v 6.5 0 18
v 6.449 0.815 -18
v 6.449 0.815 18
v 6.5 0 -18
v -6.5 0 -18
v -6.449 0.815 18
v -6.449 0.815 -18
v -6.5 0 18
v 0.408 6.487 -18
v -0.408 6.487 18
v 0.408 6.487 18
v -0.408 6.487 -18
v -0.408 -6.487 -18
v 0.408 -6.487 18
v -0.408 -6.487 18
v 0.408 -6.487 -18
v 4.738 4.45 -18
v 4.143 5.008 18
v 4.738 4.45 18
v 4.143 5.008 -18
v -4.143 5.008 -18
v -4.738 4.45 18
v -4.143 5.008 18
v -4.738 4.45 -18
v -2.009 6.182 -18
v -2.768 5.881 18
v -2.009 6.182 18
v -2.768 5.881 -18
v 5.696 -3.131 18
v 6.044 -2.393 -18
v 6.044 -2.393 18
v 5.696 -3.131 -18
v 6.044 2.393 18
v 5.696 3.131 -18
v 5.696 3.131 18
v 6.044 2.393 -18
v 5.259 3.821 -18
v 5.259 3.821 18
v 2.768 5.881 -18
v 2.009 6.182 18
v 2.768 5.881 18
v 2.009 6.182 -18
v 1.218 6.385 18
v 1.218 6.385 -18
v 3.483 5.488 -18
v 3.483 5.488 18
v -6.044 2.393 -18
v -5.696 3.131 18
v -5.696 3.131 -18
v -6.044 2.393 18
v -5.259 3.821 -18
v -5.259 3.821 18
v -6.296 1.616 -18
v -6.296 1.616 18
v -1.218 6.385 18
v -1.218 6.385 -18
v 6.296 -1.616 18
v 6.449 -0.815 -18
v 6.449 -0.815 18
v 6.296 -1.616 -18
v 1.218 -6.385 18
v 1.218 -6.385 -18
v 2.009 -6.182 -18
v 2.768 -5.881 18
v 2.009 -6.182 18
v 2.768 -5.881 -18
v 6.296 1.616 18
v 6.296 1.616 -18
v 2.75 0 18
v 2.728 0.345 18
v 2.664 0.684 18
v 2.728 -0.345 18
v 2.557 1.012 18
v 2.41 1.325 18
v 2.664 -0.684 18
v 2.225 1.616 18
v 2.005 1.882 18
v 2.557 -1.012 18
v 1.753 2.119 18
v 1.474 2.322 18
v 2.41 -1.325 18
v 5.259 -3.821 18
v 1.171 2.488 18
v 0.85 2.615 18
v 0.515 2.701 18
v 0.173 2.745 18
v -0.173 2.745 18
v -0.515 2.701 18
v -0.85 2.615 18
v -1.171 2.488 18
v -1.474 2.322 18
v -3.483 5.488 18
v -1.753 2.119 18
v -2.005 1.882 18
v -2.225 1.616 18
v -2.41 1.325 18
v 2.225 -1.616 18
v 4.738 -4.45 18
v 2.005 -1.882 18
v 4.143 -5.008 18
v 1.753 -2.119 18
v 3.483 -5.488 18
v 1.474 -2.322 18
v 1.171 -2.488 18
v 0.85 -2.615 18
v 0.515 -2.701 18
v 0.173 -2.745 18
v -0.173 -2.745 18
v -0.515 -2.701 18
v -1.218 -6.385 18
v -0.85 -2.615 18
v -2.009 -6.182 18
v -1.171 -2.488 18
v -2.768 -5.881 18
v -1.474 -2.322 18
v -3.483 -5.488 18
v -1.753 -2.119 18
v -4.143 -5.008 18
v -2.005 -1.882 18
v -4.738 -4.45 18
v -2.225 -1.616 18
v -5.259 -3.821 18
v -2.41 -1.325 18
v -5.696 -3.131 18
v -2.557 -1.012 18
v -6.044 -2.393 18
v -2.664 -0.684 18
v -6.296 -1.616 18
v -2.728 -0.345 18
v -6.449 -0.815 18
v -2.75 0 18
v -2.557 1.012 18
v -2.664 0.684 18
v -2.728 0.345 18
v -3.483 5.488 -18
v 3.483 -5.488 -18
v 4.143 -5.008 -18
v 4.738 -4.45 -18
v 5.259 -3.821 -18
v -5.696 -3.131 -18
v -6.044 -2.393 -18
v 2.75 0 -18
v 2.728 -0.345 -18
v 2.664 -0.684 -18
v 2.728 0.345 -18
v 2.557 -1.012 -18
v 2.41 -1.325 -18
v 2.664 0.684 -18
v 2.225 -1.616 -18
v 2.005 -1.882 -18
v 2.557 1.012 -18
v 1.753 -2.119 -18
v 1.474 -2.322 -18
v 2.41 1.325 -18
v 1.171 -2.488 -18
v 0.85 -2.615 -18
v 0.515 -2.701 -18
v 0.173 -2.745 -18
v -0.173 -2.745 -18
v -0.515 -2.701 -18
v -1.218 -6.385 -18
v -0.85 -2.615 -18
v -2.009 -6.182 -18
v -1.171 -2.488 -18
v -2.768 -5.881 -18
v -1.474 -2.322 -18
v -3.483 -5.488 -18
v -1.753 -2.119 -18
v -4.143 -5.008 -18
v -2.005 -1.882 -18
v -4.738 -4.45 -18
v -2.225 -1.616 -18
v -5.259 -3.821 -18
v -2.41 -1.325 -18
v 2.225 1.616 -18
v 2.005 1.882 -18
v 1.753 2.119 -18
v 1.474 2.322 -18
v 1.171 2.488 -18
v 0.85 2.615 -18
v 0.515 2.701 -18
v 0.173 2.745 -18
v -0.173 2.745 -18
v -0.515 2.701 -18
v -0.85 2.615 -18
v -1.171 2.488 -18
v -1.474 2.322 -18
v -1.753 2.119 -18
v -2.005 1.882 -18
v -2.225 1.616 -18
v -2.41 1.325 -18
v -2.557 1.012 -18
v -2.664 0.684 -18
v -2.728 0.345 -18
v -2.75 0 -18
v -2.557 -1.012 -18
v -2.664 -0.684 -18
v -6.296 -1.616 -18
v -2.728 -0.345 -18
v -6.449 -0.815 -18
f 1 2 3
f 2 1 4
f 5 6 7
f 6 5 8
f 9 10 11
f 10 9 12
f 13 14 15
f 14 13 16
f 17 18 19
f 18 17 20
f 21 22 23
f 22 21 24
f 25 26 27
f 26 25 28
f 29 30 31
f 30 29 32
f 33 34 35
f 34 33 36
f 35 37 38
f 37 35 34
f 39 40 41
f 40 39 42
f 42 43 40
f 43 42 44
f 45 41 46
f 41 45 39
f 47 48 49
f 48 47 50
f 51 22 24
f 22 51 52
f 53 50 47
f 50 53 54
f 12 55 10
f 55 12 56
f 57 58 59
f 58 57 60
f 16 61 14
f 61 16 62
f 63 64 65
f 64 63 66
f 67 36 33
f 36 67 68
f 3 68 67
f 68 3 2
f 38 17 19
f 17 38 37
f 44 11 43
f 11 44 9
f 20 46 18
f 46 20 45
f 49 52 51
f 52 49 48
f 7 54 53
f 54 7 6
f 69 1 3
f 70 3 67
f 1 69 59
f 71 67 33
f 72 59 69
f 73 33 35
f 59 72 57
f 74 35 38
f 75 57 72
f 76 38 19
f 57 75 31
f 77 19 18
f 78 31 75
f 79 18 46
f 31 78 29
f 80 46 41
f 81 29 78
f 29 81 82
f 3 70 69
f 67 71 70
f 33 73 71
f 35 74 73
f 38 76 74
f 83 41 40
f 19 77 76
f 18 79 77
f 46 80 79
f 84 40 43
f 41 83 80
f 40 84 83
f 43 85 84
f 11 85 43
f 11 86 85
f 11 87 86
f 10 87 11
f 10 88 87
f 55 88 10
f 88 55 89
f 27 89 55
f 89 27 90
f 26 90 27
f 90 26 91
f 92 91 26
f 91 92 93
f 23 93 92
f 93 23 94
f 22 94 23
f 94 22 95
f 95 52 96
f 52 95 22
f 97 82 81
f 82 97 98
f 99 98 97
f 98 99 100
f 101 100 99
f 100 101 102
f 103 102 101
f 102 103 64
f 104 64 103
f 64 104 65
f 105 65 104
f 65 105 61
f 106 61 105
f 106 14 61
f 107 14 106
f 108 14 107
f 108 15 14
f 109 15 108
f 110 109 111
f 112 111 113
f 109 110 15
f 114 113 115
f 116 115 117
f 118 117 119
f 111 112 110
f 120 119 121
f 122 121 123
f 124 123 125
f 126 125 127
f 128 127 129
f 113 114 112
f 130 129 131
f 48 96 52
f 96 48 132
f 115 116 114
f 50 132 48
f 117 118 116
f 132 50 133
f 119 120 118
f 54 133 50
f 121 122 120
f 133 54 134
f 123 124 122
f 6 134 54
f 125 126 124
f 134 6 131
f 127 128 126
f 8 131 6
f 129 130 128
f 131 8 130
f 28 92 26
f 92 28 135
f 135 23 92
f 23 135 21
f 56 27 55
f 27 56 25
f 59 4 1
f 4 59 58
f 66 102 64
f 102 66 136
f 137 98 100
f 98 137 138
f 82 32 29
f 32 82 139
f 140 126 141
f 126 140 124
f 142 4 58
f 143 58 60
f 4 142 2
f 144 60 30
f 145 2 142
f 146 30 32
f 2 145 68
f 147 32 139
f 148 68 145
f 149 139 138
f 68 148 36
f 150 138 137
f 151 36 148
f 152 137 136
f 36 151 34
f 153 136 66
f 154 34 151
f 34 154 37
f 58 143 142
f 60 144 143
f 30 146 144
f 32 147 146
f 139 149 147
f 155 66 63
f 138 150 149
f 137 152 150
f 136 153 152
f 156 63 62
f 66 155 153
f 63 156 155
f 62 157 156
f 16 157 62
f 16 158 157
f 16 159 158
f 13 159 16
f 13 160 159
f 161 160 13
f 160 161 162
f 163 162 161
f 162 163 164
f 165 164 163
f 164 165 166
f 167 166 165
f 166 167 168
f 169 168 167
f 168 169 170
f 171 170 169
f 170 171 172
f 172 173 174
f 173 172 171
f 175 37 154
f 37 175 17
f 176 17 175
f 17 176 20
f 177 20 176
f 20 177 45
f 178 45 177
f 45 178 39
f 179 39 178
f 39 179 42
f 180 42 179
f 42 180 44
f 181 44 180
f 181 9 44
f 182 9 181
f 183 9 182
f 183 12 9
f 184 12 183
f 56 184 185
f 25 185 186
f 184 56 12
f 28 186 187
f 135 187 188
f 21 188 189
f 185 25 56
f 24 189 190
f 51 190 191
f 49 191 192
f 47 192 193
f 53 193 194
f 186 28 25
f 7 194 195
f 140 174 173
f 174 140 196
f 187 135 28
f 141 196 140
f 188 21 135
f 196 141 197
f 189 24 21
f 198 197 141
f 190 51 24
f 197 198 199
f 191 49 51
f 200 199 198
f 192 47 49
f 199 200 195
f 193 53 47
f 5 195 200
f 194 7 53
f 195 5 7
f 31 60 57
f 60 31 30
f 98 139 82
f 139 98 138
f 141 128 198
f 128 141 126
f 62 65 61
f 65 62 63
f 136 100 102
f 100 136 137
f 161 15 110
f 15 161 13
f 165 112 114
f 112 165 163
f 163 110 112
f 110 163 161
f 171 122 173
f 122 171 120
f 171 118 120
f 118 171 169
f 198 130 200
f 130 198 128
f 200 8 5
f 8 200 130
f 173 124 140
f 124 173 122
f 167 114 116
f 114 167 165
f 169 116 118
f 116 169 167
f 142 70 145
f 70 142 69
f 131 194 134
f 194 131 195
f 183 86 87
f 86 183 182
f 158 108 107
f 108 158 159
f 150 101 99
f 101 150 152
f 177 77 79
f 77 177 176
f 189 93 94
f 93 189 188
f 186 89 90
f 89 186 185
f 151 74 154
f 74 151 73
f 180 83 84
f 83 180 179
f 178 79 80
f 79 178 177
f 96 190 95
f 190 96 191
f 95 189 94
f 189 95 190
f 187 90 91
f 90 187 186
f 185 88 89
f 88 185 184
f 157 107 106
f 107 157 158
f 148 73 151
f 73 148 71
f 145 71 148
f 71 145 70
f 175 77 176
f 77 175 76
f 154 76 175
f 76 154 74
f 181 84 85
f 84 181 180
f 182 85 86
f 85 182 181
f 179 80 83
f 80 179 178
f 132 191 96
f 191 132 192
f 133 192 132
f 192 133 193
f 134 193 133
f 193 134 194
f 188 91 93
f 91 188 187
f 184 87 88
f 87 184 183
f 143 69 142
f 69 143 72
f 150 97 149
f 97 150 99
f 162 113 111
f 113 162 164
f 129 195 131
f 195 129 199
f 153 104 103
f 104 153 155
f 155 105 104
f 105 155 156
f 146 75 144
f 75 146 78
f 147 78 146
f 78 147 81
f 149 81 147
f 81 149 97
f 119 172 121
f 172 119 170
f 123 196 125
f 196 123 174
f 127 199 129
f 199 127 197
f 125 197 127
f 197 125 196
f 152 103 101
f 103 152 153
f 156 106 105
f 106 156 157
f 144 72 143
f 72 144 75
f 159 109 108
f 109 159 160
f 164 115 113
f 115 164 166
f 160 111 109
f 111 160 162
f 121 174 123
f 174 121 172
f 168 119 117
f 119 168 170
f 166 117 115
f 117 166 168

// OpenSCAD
$fn = 50;


difference() {
	union() {
		translate(v = [0, 0, -18.0000000000]) {
			cylinder(h = 36, r = 6.5000000000);
		}
	}
	union() {
		translate(v = [0, 0, -100.0000000000]) {
			cylinder(h = 200, r = 2.7500000000);
		}
	}
}
